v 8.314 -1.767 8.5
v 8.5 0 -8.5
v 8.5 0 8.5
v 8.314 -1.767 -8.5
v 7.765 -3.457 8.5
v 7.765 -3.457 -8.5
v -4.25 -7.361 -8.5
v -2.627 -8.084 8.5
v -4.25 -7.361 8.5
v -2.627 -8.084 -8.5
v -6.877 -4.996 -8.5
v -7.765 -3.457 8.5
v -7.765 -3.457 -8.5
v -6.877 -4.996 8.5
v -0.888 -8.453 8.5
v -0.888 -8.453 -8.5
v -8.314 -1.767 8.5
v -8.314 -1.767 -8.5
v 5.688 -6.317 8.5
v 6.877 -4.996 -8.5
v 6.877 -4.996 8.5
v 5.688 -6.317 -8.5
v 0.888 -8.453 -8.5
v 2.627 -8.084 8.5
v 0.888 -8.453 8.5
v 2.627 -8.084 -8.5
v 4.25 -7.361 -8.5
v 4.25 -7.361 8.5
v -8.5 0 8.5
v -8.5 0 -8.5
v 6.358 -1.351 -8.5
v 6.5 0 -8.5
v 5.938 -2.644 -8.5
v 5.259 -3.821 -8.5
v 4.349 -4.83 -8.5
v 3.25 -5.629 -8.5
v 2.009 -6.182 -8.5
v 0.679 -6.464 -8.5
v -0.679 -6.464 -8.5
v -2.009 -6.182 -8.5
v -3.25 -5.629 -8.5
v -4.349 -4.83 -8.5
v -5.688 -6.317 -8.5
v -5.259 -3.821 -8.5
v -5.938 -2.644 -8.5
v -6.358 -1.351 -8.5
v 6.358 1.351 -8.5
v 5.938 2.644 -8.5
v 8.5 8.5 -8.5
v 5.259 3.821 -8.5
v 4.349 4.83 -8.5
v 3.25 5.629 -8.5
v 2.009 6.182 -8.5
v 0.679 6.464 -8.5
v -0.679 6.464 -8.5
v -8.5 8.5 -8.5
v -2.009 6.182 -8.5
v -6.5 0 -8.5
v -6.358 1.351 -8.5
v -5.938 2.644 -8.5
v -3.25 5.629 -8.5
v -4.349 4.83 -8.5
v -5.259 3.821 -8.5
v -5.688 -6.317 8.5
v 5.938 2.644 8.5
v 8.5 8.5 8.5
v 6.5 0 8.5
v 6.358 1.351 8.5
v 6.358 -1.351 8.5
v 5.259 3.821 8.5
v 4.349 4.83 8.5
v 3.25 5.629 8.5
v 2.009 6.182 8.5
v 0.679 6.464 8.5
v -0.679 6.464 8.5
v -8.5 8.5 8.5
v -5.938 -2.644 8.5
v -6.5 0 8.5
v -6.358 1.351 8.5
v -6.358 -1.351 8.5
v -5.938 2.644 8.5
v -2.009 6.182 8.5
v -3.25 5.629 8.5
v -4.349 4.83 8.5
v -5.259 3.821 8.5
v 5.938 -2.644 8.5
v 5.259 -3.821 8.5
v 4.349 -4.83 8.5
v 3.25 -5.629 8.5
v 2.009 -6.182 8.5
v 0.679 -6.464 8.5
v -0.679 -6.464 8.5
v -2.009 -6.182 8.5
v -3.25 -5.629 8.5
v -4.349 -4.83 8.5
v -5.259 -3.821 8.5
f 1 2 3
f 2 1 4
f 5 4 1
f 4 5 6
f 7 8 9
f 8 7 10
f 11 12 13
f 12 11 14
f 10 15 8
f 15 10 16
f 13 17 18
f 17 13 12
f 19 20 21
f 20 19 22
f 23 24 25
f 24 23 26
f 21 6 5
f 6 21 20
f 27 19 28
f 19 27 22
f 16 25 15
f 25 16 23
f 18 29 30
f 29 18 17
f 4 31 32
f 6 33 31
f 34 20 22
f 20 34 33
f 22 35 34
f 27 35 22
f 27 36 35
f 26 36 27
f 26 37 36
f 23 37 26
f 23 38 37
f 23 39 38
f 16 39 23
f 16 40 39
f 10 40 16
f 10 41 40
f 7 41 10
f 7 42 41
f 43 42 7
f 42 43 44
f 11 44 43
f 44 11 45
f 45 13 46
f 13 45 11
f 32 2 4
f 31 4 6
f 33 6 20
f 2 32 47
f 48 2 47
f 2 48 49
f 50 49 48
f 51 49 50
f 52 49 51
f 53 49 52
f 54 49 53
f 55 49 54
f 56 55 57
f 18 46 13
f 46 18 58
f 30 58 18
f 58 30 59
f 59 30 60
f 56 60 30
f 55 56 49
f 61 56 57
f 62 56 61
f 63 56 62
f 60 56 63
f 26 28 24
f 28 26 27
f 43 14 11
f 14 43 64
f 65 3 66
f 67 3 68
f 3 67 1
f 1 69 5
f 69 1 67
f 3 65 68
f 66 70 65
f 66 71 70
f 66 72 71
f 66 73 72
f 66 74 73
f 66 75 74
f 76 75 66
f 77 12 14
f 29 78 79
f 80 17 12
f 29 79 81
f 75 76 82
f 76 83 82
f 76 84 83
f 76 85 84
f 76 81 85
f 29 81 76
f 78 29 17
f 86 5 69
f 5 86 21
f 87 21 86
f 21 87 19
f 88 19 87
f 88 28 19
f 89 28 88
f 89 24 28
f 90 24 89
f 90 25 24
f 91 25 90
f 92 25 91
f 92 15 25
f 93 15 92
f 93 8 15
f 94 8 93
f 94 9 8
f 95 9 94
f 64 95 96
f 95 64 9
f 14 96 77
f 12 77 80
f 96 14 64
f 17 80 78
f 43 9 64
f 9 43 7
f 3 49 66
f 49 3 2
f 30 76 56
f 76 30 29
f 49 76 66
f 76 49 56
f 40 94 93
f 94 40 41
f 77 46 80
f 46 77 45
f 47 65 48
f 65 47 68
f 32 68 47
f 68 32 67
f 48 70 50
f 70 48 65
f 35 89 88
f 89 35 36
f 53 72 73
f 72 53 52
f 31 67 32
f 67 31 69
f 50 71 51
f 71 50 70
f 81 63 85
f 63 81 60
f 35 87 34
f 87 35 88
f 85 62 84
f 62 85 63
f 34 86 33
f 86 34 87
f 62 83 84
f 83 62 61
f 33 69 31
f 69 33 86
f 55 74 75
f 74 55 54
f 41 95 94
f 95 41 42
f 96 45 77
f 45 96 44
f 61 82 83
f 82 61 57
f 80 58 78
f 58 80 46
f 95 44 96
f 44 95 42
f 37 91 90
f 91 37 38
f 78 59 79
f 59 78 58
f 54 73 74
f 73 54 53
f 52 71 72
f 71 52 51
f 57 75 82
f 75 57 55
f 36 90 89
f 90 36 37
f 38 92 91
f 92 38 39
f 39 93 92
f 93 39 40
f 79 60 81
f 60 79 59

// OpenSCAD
/*
Copyright (C) Saeed Gholami Shahbandi. All rights reserved.
Author: Saeed Gholami Shahbandi (saeed.gh.sh@gmail.com)

This file is part of Arrangement Library.
The of Arrangement Library is free software: you can redistribute it and/or
modify it under the terms of the GNU Lesser General Public License as published
by the Free Software Foundation, either version 3 of the License,
or (at your option) any later version.

This program is distributed in the hope that it will be useful, but WITHOUT ANY
WARRANTY; without even the implied warranty of MERCHANTABILITY or FITNESS FOR A
PARTICULAR PURPOSE. See the GNU Lesser General Public License for more details.

You should have received a copy of the GNU Lesser General Public License along
with this program. If not, see <http://www.gnu.org/licenses/>
*/

tol = 0.02;
inner_diameter = 13.0;
thickness = 2.0;
outer_size = inner_diameter + 2 * thickness;

difference(){
  union(){
    color("Green", 1.0)
      cylinder(h=outer_size, d=outer_size, $fn= 30, center=true);
    
    color("Green", 1.0)
      translate([0, outer_size/4, 0])
      cube(size = [outer_size, outer_size/2 , outer_size], center=true);
  }

  color("Red", 1.0)
    cylinder(h=outer_size+tol, d=inner_diameter, $fn= 30, center=true);  
}
